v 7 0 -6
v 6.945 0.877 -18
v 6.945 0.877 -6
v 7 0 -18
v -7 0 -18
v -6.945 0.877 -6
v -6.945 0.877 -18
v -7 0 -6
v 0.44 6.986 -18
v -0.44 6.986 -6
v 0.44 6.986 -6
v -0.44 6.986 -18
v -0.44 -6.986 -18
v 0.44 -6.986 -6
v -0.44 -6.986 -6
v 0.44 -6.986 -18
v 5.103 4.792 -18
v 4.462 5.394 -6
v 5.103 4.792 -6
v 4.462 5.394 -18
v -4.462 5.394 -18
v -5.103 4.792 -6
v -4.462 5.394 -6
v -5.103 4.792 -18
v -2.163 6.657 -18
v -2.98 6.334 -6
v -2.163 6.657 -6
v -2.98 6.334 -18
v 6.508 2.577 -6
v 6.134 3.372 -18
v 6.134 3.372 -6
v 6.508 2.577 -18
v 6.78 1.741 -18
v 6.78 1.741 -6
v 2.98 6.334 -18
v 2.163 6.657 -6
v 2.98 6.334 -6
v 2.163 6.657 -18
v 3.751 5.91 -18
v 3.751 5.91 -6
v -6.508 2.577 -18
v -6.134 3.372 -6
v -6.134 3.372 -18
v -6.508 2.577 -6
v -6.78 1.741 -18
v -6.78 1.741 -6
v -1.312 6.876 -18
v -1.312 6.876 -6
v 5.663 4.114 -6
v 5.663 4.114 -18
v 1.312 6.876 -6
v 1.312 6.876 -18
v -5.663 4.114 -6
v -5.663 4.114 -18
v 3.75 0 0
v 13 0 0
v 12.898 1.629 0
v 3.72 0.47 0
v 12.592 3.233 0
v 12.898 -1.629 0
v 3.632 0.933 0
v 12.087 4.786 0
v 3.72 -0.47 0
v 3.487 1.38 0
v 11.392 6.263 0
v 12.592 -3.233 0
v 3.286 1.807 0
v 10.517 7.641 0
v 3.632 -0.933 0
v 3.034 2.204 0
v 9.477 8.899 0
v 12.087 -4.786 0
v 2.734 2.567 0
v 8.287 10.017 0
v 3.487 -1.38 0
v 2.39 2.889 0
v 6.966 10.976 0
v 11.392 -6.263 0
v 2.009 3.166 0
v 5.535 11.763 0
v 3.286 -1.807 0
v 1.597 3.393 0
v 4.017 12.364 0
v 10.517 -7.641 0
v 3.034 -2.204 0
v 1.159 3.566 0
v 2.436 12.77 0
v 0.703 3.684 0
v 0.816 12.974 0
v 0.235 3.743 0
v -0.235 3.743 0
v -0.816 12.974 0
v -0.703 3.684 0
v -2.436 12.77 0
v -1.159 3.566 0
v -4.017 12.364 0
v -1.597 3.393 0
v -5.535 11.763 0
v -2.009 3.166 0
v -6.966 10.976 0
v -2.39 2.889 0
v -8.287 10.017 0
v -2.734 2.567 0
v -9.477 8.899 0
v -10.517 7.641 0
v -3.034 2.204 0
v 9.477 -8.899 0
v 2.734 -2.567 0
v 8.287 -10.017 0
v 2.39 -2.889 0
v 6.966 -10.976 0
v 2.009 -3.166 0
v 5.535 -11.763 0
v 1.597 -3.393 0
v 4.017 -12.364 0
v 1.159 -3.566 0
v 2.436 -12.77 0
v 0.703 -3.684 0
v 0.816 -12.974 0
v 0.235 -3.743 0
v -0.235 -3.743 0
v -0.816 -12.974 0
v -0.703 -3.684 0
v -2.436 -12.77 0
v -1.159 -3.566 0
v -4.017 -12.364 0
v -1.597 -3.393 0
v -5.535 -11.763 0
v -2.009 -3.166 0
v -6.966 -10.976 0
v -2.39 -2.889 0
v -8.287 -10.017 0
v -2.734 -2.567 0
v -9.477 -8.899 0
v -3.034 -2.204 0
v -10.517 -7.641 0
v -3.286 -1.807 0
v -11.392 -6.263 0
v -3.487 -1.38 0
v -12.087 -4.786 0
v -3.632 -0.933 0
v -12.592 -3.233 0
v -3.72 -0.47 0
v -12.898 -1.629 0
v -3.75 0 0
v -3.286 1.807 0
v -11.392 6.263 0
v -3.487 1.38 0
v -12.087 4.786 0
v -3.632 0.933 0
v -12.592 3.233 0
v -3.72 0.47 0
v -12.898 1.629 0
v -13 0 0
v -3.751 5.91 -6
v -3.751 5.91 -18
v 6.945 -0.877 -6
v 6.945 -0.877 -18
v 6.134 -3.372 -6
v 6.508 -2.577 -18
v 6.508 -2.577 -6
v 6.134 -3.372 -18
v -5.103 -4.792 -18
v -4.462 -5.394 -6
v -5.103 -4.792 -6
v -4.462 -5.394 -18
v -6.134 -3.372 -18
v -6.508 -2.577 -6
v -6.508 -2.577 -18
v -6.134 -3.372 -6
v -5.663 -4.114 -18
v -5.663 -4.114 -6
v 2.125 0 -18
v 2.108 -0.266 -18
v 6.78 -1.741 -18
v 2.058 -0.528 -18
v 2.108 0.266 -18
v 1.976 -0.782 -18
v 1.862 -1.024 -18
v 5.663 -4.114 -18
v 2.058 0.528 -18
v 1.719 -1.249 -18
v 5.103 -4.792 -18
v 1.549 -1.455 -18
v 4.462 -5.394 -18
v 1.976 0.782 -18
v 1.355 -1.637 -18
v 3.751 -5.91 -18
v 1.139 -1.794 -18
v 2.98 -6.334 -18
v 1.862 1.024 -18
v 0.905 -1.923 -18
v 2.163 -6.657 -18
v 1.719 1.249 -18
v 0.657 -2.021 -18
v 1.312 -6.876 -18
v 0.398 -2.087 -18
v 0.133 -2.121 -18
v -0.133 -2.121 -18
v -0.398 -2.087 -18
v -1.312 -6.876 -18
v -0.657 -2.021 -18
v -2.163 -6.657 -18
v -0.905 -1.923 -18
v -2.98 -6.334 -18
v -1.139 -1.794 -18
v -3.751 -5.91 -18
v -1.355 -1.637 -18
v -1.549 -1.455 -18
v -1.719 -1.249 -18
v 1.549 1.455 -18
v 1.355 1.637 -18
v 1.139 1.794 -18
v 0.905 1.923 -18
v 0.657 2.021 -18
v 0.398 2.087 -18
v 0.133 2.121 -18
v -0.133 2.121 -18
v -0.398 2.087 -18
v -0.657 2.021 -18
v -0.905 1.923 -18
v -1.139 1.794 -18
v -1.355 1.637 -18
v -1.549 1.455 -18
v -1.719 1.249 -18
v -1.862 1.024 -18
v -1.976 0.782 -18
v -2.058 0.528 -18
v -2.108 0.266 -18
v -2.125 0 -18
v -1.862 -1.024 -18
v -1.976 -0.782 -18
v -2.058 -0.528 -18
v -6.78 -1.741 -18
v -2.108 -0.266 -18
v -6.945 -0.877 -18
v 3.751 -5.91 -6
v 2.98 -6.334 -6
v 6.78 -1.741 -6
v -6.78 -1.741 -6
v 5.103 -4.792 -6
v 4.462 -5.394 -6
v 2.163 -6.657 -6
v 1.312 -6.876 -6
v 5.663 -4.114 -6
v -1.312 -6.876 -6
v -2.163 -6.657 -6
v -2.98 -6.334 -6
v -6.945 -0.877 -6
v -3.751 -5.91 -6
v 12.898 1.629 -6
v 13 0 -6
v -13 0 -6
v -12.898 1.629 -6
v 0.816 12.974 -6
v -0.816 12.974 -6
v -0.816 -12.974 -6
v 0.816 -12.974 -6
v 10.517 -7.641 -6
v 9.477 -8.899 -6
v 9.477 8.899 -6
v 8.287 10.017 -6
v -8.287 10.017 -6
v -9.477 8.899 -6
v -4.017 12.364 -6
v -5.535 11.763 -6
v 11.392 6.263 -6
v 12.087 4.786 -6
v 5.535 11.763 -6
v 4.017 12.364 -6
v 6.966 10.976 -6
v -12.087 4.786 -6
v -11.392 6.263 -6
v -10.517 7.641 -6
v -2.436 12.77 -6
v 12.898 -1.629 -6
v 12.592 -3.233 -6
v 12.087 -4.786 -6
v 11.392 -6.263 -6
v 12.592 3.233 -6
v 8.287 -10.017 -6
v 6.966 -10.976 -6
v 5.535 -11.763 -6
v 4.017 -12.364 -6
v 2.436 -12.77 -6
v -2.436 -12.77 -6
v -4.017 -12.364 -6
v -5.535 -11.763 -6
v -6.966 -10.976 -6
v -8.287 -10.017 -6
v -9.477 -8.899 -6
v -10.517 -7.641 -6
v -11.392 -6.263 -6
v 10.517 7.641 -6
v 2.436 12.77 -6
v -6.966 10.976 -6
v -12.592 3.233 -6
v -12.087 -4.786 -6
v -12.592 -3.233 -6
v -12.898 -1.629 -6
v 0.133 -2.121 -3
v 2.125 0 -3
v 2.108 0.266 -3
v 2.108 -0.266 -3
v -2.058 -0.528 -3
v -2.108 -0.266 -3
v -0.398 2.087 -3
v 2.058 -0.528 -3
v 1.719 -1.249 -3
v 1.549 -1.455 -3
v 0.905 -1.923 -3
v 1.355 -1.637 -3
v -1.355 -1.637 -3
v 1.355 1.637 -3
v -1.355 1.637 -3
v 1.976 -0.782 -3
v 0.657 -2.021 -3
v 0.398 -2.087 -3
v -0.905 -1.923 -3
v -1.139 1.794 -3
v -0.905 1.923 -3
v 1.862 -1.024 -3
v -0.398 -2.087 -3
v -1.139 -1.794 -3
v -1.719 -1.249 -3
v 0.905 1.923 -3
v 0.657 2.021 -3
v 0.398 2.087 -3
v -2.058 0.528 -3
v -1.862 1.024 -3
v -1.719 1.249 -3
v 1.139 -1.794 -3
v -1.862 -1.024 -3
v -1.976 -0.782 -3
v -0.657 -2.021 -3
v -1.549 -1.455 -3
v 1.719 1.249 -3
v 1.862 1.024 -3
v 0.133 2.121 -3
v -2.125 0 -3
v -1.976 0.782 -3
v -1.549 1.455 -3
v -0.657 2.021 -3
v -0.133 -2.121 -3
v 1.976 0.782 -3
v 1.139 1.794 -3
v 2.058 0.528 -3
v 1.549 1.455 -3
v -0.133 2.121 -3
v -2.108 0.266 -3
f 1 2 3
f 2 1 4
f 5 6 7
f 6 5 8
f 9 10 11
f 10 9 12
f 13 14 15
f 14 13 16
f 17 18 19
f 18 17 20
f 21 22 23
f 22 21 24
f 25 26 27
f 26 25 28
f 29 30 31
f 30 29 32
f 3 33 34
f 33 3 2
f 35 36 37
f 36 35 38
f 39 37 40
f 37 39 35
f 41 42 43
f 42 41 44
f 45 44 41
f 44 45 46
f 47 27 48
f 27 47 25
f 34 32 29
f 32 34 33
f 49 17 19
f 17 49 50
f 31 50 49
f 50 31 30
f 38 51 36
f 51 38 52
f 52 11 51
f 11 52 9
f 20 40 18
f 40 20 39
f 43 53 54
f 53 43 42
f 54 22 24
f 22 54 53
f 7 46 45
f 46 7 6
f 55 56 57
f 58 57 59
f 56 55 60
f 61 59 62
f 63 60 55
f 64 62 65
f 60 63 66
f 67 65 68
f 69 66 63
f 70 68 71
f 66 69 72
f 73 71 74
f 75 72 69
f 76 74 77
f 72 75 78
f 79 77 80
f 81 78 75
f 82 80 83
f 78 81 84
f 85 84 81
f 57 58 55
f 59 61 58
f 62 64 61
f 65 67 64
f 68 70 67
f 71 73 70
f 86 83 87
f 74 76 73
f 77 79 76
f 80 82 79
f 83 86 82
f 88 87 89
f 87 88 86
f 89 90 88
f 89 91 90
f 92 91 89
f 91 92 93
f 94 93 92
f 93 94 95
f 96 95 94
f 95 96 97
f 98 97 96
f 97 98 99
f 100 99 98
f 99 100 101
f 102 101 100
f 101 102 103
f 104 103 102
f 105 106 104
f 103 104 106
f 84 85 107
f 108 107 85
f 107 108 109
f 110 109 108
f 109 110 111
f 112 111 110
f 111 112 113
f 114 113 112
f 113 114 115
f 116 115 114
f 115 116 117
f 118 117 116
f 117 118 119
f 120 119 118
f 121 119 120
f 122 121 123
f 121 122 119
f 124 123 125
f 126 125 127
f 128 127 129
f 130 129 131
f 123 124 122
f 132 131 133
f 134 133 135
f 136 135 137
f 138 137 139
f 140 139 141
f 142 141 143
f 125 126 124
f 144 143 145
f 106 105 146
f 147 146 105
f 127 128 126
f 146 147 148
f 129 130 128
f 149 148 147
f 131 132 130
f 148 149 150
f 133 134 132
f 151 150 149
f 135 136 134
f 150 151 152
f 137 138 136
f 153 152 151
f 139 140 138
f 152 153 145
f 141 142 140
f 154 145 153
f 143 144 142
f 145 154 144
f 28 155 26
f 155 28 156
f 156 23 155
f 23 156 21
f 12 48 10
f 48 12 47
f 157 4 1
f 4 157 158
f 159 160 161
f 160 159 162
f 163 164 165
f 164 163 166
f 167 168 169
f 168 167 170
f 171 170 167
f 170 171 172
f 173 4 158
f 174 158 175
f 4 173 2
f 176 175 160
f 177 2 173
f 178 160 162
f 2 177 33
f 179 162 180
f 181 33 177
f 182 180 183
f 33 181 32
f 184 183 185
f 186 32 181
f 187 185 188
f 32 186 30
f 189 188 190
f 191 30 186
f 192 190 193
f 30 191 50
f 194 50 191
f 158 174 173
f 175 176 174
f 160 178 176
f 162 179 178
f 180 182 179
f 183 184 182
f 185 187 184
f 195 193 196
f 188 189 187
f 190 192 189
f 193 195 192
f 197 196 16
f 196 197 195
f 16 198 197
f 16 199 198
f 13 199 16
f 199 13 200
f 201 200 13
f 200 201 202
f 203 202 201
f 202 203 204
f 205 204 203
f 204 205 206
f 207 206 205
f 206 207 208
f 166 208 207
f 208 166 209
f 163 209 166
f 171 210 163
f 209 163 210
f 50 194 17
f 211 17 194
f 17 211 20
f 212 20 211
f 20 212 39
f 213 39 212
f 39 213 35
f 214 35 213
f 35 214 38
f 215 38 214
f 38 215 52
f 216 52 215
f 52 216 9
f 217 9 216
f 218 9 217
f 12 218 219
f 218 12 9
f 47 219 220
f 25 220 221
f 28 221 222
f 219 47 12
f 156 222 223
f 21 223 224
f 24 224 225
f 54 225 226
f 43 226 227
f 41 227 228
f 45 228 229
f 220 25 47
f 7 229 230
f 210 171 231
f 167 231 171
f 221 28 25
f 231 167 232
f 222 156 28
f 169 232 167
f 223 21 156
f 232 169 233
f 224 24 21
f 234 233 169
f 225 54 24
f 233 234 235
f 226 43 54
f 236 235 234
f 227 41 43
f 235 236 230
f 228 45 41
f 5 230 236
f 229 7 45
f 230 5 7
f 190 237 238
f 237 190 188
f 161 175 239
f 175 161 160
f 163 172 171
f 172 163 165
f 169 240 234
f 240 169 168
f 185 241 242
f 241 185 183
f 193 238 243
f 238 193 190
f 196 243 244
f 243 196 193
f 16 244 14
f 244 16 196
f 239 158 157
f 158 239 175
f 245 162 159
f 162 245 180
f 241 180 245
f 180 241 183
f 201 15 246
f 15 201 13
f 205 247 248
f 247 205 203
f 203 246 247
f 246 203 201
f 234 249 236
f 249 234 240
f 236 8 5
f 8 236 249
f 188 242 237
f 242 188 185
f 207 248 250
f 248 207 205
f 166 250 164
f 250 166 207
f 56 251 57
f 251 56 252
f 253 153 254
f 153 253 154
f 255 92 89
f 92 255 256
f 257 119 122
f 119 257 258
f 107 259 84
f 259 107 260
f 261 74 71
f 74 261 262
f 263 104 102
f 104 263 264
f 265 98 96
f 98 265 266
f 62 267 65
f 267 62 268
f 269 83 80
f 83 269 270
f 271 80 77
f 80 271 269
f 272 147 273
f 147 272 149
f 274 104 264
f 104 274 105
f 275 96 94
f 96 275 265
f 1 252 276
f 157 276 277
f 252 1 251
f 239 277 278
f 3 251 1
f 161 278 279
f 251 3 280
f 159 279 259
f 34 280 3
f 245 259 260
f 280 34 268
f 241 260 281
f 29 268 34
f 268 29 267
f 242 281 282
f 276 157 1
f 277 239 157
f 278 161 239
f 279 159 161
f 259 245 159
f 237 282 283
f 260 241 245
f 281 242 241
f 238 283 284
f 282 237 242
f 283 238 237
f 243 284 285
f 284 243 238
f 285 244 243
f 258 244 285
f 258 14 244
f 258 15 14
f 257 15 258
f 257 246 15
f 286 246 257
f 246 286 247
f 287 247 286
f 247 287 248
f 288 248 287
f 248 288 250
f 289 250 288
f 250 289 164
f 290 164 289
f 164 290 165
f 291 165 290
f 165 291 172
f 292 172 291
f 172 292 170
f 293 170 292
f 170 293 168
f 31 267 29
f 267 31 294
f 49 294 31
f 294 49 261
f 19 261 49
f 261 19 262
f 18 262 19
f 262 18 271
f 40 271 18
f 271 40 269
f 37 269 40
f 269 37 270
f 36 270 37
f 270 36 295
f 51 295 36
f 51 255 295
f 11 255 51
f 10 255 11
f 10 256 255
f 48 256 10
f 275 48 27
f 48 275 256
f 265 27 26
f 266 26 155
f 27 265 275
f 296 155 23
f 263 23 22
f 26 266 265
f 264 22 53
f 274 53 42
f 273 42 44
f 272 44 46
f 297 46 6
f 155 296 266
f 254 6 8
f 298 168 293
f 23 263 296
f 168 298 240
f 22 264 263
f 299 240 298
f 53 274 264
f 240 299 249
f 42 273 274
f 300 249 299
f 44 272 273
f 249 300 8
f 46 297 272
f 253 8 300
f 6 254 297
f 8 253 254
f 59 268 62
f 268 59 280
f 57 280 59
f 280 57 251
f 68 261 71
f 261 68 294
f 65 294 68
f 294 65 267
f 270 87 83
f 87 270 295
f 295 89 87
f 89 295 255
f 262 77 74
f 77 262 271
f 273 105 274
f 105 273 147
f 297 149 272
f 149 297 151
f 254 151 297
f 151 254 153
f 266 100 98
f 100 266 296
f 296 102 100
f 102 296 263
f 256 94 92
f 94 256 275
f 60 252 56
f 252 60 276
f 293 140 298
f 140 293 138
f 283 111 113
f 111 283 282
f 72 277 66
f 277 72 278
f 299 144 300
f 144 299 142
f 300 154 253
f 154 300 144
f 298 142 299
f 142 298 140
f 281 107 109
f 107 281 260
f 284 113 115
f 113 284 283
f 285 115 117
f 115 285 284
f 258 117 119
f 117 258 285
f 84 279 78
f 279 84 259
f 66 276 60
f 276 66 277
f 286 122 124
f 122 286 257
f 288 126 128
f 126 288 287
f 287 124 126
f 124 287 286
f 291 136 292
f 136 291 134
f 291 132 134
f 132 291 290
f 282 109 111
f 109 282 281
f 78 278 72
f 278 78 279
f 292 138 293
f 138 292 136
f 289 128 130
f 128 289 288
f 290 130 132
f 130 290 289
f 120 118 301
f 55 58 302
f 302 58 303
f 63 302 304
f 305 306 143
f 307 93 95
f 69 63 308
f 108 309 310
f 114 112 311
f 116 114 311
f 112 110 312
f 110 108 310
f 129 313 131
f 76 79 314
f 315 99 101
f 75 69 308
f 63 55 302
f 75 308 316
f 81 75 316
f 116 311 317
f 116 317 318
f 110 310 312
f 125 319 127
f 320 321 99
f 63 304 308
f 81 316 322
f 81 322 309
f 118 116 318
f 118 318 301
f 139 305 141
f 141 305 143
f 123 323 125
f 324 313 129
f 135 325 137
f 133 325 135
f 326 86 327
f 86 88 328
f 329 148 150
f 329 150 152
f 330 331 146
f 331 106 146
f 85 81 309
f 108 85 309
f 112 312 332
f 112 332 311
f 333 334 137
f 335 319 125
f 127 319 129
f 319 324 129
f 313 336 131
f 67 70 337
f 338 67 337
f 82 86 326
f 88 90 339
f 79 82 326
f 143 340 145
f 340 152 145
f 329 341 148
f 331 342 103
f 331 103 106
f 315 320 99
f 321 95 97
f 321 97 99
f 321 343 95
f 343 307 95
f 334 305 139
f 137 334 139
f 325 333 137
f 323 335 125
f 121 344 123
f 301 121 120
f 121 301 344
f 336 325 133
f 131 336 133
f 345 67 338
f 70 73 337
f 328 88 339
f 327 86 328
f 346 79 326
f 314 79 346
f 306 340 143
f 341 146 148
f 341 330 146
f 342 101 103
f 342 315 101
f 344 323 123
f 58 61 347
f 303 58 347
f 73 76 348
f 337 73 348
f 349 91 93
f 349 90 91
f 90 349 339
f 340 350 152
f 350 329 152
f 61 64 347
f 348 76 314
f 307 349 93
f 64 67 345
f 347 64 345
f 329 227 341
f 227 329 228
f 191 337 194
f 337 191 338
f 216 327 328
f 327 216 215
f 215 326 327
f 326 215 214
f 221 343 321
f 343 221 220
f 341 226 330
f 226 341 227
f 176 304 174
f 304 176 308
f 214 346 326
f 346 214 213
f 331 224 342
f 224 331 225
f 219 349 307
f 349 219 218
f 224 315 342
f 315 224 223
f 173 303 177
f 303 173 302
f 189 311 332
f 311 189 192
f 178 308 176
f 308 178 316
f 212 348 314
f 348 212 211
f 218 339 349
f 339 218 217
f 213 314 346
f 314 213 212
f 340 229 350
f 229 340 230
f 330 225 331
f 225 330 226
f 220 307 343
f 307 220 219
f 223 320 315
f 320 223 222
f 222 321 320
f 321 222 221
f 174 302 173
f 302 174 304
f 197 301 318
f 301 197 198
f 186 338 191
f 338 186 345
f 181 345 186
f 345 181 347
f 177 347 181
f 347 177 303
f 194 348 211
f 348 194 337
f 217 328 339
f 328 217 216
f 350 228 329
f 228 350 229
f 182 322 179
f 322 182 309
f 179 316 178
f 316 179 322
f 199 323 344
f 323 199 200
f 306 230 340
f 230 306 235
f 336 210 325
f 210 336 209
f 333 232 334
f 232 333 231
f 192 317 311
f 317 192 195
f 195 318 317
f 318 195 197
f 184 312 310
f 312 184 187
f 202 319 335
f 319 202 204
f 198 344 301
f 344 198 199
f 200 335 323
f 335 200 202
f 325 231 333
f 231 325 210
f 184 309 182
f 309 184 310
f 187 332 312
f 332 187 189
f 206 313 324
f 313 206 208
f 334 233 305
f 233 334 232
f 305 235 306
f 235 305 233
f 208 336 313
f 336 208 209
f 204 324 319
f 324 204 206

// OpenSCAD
$fn = 50;


difference() {
	union() {
		translate(v = [0, 0, -18.0000000000]) {
			cylinder(h = 18, r = 7.0000000000);
		}
		translate(v = [0, 0, -6.0000000000]) {
			cylinder(h = 6, r = 13.0000000000);
		}
	}
	union() {
		translate(v = [0, 0, 0]) {
			rotate(a = [0, 0, 0]) {
				difference() {
					union() {
						#translate(v = [0, 0, -18.0000000000]) {
							cylinder(h = 18, r = 2.0000000000);
						}
						#translate(v = [0, 0, -3]) {
							cylinder(h = 3, r1 = 2.1250000000, r2 = 3.7500000000);
						}
						#translate(v = [0, 0, -18.0000000000]) {
							cylinder(h = 18, r = 2.1250000000);
						}
						#translate(v = [0, 0, -18.0000000000]) {
							cylinder(h = 18, r = 2.0000000000);
						}
					}
					union();
				}
			}
		}
	}
}
